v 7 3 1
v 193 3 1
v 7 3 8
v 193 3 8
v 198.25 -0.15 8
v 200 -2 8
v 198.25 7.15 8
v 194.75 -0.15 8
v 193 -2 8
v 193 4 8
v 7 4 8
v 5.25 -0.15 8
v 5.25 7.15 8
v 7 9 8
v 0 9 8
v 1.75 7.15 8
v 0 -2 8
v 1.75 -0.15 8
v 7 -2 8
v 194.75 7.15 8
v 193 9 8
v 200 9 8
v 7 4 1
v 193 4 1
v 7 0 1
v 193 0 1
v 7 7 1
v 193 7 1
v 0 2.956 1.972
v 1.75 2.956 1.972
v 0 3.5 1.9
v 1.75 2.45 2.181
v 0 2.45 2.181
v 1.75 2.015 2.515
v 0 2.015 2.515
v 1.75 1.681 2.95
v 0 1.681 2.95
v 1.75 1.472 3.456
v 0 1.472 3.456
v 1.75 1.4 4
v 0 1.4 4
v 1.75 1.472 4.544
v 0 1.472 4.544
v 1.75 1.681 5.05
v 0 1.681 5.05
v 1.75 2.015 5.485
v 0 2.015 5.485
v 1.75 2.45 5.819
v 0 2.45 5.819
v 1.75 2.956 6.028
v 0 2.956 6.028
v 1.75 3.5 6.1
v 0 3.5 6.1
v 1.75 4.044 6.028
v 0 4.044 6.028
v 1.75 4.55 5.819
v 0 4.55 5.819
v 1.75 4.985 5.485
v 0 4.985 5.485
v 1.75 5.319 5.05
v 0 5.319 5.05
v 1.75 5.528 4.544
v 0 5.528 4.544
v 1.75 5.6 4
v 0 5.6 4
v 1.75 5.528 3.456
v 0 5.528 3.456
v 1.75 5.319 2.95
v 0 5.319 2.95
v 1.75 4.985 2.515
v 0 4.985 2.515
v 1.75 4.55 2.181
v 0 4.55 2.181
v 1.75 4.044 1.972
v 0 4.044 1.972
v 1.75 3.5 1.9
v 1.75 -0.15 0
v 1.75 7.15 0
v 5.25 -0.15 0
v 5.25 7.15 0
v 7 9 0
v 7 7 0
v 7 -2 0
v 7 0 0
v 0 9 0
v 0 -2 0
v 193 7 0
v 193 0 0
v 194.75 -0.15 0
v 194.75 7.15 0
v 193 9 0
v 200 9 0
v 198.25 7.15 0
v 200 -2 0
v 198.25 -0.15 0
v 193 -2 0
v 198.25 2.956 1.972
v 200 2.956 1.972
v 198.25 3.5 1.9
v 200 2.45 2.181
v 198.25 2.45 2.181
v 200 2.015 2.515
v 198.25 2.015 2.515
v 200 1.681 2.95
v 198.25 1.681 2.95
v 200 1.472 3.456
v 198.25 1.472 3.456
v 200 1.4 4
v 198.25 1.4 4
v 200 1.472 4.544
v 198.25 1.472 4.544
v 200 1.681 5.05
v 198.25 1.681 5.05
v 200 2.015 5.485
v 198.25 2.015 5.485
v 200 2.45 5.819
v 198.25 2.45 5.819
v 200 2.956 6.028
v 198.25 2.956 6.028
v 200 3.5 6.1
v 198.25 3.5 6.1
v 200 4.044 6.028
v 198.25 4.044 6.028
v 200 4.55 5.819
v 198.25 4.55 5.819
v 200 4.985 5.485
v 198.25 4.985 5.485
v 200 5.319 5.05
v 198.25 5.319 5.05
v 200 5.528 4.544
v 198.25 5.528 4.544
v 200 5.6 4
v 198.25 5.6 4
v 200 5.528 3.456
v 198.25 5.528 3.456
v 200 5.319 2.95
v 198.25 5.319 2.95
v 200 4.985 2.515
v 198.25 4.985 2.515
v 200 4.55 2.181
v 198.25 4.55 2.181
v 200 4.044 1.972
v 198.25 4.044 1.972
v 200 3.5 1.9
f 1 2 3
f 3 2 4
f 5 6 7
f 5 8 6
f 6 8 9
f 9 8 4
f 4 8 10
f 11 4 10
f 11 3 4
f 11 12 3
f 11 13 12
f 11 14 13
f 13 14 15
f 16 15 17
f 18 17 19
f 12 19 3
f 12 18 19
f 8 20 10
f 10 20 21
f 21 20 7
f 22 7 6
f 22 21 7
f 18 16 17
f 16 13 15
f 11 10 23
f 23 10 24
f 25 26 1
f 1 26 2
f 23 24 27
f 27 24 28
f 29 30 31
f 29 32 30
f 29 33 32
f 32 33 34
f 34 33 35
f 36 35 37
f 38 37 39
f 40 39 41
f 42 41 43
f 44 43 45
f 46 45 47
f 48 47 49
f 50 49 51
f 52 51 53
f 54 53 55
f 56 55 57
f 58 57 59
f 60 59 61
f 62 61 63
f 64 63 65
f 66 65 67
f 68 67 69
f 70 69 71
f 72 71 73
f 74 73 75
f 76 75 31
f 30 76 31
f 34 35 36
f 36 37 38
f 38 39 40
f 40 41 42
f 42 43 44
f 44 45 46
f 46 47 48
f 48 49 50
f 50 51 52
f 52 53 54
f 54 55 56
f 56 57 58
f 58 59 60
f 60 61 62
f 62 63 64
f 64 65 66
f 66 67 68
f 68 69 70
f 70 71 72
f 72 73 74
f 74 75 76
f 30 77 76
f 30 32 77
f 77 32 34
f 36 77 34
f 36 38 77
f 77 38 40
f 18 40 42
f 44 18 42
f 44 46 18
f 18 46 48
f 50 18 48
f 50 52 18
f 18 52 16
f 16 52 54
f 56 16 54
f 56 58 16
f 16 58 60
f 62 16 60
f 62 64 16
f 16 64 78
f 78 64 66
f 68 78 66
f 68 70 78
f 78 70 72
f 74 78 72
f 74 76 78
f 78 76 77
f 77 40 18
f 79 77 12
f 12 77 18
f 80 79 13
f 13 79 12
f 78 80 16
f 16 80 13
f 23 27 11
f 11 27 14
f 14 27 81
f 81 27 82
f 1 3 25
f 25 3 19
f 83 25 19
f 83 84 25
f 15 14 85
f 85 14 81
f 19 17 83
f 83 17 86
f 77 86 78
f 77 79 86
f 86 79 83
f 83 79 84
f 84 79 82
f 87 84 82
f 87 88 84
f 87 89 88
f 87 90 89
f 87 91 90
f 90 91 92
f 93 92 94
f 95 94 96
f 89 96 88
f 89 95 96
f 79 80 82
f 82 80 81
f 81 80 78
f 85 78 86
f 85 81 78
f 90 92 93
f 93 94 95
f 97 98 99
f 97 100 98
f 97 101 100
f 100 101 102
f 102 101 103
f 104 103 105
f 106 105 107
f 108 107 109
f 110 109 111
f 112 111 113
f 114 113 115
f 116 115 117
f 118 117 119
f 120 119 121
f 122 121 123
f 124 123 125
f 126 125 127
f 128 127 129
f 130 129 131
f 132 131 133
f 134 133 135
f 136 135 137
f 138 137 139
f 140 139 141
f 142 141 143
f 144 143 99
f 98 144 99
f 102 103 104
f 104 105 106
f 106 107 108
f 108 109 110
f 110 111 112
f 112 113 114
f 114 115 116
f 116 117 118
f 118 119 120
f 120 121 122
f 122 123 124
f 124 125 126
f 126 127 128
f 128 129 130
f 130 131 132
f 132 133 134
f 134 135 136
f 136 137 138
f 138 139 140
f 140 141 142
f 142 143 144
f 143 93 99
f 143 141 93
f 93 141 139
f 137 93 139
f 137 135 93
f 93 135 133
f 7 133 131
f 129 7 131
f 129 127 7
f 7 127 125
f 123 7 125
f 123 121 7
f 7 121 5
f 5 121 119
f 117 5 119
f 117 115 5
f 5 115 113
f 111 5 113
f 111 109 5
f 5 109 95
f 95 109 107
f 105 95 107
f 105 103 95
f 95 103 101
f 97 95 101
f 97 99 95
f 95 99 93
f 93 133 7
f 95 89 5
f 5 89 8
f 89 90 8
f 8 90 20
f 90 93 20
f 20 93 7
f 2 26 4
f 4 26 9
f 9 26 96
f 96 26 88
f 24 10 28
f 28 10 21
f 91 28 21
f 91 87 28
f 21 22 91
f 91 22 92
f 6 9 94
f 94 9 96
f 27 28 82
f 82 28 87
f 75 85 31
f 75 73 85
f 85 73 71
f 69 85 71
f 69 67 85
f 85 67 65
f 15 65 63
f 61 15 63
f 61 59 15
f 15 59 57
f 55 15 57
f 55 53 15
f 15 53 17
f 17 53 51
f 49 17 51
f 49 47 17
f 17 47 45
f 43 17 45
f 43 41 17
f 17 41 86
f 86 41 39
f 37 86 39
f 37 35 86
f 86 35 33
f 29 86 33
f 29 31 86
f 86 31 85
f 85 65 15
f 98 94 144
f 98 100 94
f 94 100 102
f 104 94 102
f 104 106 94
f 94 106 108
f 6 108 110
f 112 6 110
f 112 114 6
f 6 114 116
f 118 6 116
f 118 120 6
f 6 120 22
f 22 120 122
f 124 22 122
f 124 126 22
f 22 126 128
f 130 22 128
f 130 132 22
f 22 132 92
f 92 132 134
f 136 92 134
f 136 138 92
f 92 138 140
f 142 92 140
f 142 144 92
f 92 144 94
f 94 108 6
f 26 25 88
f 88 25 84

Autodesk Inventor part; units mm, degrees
ref_plane "XZ Plane" through (0, 0, 0) normal (0, 1, 0) x (-1, 0, 0)
ref_plane "XY Plane" through (0, 0, 0) normal (0, 0, 1) x (1, 0, 0)
sketch "Sketch1" plane through (0, 0, 0) normal (0, 0, 1) x (1, 0, 0)
  line L0 (0, 0) -> (200, 0)
  line L1 (200, 0) -> (200, 7)
  line L2 (200, 7) -> (0, 7)
  line L3 (0, 7) -> (0, 0)
  dimension "d0" = 200
  dimension "d1" = 7
extrude "Extrusion1" add sketch "Sketch1" along normal blind 1.5
sketch "Sketch2" plane through (0, 0, 1.5) normal (0, 0, 1) x (1, 0, 0)
  line L0 (200, 7) -> (0, 7) projected
  line L1 (0, 7) -> (0, 0) projected
  line L2 (0, 4.25) -> (200, 4.25)
  line L3 (200, 4.25) -> (200, 2.75)
  line L4 (200, 2.75) -> (0, 2.75)
  line L5 (0, 2.75) -> (0, 4.25)
  dimension "d4" = 200
  dimension "d5" = 1.5
  dimension "d6" = 2.75
extrude "Extrusion2" add sketch "Sketch2" along normal blind 6.5
sketch "Sketch3" plane through (0, 0, 0) normal (0, 0, -1) x (-1, 0, 0)
  line L0 (-200, 7) -> (0, 7) projected
  line L1 (-200, 9) -> (-193, 9)
  line L2 (-193, 9) -> (-193, -2)
  line L3 (-193, -2) -> (-200, -2)
  line L4 (-200, -2) -> (-200, 9)
  dimension "d9" = 7
  dimension "d10" = 11
  dimension "d11" = 2
extrude "Extrusion3" add sketch "Sketch3" against normal up to surface (8 mm away)
sketch "Sketch4" plane through (0, 0, 0) normal (0, 0, -1) x (-1, 0, 0)
  line L0 (-200, 9) -> (-193, 9) projected
  line L1 (-200, -2) -> (-200, 9) projected
  line L2 (-193, -2) -> (-200, -2) projected
  line L3 (-198.25, 7.15) -> (-194.75, 7.15)
  line L4 (-194.75, 7.15) -> (-194.75, -0.15)
  line L5 (-194.75, -0.15) -> (-198.25, -0.15)
  line L6 (-198.25, -0.15) -> (-198.25, 7.15)
  dimension "d14" = 3.5
  dimension "d15" = 7.3
  dimension "d16" = 1.85
  dimension "d17" = 1.85
  dimension "d18" = 1.75
extrude "Extrusion4" cut sketch "Sketch4" against normal blind 8
sketch "Sketch5" plane through (200, -2, 0) normal (1, 0, 0) x (0, 0, -1)
  circle A0 centre (-4, 5.5) radius 2.1
  point P0 (0, 2)
  dimension "d21" = 4.2
ref_plane "Work Plane1" through (100, 0, 0) normal (1, 0, 0) x (0, 1, 0)
extrude "Extrusion5" cut sketch "Sketch5" against normal up to surface (7 mm away)
mirror "Mirror1" about plane through (100, 0, 0) normal (1, 0, 0) of "Extrusion3"
mirror "Mirror2" about plane through (100, 0, 0) normal (1, 0, 0) of "Extrusion5", "Extrusion4"
sketch "Sketch6" plane through (0, 0, 1.5) normal (0, 0, 1) x (1, 0, 0)
  line L0 (7, 7) -> (7, 4.25) projected
  line L1 (7, 4.25) -> (193, 4.25) projected
  line L2 (193, 4.25) -> (193, 7) projected
  line L3 (193, 7) -> (7, 7) projected
  point P0 (0, 0)
extrude "Extrusion6" cut sketch "Sketch6" against normal blind 0.5
sketch "Sketch7" plane through (0, 0, 1.5) normal (0, 0, 1) x (1, 0, 0)
  line L0 (7, 2.75) -> (7, 0) projected
  line L1 (7, 0) -> (193, 0) projected
  line L2 (193, 0) -> (193, 2.75) projected
  line L3 (193, 2.75) -> (7, 2.75) projected
  point P0 (0, 0)
extrude "Extrusion7" cut sketch "Sketch7" against normal blind 0.5
sketch "Sketch8" plane through (193, 4.25, 5.9615) normal (0, 1, 0) x (1, 0, 0)
  line L0 (-186, 4.9615) -> (-186, 3.923) projected
  line L1 (-186, 3.923) -> (-186, 0) projected
  line L2 (-186, 0) -> (-186, -2.0385) projected
  line L3 (0, -2.0385) -> (-186, -2.0385) projected
  line L4 (0, -2.0385) -> (0, 0) projected
  line L5 (0, 0) -> (0, 3.923) projected
  line L6 (0, 3.923) -> (0, 4.9615) projected
  line L7 (0, 4.9615) -> (-186, 4.9615) projected
  point P0 (-193, 5.9615)
extrude "Extrusion8" cut sketch "Sketch8" against normal blind 0.25
sketch "Sketch9" plane through (193, 2.75, 2.0385) normal (0, -1, 0) x (1, 0, 0)
  line L0 (-186, 5.9615) -> (-186, 3.923) projected
  line L1 (-186, 3.923) -> (-186, 0) projected
  line L2 (-186, 0) -> (-186, -1.0385) projected
  line L3 (-186, -1.0385) -> (0, -1.0385) projected
  line L4 (0, -1.0385) -> (0, 0) projected
  line L5 (0, 0) -> (0, 3.923) projected
  line L6 (0, 3.923) -> (0, 5.9615) projected
  line L7 (-186, 5.9615) -> (0, 5.9615) projected
  point P0 (-193, -2.0385)
extrude "Extrusion9" cut sketch "Sketch9" against normal blind 0.25
sketch "Sketch10" plane through (194.75, -0.15, 0) normal (1, 0, 0) x (0, 0, -1)
  circle A0 centre (-4, 3.65) radius 2.1 projected
  point P0 (0, 0.15)
extrude "Extrusion10" add sketch "Sketch10" against normal up to surface (1.75 mm away)
mirror "Mirror3" about plane through (100, 0, 0) normal (1, 0, 0) of "Extrusion10"
properties part number "Axle"
